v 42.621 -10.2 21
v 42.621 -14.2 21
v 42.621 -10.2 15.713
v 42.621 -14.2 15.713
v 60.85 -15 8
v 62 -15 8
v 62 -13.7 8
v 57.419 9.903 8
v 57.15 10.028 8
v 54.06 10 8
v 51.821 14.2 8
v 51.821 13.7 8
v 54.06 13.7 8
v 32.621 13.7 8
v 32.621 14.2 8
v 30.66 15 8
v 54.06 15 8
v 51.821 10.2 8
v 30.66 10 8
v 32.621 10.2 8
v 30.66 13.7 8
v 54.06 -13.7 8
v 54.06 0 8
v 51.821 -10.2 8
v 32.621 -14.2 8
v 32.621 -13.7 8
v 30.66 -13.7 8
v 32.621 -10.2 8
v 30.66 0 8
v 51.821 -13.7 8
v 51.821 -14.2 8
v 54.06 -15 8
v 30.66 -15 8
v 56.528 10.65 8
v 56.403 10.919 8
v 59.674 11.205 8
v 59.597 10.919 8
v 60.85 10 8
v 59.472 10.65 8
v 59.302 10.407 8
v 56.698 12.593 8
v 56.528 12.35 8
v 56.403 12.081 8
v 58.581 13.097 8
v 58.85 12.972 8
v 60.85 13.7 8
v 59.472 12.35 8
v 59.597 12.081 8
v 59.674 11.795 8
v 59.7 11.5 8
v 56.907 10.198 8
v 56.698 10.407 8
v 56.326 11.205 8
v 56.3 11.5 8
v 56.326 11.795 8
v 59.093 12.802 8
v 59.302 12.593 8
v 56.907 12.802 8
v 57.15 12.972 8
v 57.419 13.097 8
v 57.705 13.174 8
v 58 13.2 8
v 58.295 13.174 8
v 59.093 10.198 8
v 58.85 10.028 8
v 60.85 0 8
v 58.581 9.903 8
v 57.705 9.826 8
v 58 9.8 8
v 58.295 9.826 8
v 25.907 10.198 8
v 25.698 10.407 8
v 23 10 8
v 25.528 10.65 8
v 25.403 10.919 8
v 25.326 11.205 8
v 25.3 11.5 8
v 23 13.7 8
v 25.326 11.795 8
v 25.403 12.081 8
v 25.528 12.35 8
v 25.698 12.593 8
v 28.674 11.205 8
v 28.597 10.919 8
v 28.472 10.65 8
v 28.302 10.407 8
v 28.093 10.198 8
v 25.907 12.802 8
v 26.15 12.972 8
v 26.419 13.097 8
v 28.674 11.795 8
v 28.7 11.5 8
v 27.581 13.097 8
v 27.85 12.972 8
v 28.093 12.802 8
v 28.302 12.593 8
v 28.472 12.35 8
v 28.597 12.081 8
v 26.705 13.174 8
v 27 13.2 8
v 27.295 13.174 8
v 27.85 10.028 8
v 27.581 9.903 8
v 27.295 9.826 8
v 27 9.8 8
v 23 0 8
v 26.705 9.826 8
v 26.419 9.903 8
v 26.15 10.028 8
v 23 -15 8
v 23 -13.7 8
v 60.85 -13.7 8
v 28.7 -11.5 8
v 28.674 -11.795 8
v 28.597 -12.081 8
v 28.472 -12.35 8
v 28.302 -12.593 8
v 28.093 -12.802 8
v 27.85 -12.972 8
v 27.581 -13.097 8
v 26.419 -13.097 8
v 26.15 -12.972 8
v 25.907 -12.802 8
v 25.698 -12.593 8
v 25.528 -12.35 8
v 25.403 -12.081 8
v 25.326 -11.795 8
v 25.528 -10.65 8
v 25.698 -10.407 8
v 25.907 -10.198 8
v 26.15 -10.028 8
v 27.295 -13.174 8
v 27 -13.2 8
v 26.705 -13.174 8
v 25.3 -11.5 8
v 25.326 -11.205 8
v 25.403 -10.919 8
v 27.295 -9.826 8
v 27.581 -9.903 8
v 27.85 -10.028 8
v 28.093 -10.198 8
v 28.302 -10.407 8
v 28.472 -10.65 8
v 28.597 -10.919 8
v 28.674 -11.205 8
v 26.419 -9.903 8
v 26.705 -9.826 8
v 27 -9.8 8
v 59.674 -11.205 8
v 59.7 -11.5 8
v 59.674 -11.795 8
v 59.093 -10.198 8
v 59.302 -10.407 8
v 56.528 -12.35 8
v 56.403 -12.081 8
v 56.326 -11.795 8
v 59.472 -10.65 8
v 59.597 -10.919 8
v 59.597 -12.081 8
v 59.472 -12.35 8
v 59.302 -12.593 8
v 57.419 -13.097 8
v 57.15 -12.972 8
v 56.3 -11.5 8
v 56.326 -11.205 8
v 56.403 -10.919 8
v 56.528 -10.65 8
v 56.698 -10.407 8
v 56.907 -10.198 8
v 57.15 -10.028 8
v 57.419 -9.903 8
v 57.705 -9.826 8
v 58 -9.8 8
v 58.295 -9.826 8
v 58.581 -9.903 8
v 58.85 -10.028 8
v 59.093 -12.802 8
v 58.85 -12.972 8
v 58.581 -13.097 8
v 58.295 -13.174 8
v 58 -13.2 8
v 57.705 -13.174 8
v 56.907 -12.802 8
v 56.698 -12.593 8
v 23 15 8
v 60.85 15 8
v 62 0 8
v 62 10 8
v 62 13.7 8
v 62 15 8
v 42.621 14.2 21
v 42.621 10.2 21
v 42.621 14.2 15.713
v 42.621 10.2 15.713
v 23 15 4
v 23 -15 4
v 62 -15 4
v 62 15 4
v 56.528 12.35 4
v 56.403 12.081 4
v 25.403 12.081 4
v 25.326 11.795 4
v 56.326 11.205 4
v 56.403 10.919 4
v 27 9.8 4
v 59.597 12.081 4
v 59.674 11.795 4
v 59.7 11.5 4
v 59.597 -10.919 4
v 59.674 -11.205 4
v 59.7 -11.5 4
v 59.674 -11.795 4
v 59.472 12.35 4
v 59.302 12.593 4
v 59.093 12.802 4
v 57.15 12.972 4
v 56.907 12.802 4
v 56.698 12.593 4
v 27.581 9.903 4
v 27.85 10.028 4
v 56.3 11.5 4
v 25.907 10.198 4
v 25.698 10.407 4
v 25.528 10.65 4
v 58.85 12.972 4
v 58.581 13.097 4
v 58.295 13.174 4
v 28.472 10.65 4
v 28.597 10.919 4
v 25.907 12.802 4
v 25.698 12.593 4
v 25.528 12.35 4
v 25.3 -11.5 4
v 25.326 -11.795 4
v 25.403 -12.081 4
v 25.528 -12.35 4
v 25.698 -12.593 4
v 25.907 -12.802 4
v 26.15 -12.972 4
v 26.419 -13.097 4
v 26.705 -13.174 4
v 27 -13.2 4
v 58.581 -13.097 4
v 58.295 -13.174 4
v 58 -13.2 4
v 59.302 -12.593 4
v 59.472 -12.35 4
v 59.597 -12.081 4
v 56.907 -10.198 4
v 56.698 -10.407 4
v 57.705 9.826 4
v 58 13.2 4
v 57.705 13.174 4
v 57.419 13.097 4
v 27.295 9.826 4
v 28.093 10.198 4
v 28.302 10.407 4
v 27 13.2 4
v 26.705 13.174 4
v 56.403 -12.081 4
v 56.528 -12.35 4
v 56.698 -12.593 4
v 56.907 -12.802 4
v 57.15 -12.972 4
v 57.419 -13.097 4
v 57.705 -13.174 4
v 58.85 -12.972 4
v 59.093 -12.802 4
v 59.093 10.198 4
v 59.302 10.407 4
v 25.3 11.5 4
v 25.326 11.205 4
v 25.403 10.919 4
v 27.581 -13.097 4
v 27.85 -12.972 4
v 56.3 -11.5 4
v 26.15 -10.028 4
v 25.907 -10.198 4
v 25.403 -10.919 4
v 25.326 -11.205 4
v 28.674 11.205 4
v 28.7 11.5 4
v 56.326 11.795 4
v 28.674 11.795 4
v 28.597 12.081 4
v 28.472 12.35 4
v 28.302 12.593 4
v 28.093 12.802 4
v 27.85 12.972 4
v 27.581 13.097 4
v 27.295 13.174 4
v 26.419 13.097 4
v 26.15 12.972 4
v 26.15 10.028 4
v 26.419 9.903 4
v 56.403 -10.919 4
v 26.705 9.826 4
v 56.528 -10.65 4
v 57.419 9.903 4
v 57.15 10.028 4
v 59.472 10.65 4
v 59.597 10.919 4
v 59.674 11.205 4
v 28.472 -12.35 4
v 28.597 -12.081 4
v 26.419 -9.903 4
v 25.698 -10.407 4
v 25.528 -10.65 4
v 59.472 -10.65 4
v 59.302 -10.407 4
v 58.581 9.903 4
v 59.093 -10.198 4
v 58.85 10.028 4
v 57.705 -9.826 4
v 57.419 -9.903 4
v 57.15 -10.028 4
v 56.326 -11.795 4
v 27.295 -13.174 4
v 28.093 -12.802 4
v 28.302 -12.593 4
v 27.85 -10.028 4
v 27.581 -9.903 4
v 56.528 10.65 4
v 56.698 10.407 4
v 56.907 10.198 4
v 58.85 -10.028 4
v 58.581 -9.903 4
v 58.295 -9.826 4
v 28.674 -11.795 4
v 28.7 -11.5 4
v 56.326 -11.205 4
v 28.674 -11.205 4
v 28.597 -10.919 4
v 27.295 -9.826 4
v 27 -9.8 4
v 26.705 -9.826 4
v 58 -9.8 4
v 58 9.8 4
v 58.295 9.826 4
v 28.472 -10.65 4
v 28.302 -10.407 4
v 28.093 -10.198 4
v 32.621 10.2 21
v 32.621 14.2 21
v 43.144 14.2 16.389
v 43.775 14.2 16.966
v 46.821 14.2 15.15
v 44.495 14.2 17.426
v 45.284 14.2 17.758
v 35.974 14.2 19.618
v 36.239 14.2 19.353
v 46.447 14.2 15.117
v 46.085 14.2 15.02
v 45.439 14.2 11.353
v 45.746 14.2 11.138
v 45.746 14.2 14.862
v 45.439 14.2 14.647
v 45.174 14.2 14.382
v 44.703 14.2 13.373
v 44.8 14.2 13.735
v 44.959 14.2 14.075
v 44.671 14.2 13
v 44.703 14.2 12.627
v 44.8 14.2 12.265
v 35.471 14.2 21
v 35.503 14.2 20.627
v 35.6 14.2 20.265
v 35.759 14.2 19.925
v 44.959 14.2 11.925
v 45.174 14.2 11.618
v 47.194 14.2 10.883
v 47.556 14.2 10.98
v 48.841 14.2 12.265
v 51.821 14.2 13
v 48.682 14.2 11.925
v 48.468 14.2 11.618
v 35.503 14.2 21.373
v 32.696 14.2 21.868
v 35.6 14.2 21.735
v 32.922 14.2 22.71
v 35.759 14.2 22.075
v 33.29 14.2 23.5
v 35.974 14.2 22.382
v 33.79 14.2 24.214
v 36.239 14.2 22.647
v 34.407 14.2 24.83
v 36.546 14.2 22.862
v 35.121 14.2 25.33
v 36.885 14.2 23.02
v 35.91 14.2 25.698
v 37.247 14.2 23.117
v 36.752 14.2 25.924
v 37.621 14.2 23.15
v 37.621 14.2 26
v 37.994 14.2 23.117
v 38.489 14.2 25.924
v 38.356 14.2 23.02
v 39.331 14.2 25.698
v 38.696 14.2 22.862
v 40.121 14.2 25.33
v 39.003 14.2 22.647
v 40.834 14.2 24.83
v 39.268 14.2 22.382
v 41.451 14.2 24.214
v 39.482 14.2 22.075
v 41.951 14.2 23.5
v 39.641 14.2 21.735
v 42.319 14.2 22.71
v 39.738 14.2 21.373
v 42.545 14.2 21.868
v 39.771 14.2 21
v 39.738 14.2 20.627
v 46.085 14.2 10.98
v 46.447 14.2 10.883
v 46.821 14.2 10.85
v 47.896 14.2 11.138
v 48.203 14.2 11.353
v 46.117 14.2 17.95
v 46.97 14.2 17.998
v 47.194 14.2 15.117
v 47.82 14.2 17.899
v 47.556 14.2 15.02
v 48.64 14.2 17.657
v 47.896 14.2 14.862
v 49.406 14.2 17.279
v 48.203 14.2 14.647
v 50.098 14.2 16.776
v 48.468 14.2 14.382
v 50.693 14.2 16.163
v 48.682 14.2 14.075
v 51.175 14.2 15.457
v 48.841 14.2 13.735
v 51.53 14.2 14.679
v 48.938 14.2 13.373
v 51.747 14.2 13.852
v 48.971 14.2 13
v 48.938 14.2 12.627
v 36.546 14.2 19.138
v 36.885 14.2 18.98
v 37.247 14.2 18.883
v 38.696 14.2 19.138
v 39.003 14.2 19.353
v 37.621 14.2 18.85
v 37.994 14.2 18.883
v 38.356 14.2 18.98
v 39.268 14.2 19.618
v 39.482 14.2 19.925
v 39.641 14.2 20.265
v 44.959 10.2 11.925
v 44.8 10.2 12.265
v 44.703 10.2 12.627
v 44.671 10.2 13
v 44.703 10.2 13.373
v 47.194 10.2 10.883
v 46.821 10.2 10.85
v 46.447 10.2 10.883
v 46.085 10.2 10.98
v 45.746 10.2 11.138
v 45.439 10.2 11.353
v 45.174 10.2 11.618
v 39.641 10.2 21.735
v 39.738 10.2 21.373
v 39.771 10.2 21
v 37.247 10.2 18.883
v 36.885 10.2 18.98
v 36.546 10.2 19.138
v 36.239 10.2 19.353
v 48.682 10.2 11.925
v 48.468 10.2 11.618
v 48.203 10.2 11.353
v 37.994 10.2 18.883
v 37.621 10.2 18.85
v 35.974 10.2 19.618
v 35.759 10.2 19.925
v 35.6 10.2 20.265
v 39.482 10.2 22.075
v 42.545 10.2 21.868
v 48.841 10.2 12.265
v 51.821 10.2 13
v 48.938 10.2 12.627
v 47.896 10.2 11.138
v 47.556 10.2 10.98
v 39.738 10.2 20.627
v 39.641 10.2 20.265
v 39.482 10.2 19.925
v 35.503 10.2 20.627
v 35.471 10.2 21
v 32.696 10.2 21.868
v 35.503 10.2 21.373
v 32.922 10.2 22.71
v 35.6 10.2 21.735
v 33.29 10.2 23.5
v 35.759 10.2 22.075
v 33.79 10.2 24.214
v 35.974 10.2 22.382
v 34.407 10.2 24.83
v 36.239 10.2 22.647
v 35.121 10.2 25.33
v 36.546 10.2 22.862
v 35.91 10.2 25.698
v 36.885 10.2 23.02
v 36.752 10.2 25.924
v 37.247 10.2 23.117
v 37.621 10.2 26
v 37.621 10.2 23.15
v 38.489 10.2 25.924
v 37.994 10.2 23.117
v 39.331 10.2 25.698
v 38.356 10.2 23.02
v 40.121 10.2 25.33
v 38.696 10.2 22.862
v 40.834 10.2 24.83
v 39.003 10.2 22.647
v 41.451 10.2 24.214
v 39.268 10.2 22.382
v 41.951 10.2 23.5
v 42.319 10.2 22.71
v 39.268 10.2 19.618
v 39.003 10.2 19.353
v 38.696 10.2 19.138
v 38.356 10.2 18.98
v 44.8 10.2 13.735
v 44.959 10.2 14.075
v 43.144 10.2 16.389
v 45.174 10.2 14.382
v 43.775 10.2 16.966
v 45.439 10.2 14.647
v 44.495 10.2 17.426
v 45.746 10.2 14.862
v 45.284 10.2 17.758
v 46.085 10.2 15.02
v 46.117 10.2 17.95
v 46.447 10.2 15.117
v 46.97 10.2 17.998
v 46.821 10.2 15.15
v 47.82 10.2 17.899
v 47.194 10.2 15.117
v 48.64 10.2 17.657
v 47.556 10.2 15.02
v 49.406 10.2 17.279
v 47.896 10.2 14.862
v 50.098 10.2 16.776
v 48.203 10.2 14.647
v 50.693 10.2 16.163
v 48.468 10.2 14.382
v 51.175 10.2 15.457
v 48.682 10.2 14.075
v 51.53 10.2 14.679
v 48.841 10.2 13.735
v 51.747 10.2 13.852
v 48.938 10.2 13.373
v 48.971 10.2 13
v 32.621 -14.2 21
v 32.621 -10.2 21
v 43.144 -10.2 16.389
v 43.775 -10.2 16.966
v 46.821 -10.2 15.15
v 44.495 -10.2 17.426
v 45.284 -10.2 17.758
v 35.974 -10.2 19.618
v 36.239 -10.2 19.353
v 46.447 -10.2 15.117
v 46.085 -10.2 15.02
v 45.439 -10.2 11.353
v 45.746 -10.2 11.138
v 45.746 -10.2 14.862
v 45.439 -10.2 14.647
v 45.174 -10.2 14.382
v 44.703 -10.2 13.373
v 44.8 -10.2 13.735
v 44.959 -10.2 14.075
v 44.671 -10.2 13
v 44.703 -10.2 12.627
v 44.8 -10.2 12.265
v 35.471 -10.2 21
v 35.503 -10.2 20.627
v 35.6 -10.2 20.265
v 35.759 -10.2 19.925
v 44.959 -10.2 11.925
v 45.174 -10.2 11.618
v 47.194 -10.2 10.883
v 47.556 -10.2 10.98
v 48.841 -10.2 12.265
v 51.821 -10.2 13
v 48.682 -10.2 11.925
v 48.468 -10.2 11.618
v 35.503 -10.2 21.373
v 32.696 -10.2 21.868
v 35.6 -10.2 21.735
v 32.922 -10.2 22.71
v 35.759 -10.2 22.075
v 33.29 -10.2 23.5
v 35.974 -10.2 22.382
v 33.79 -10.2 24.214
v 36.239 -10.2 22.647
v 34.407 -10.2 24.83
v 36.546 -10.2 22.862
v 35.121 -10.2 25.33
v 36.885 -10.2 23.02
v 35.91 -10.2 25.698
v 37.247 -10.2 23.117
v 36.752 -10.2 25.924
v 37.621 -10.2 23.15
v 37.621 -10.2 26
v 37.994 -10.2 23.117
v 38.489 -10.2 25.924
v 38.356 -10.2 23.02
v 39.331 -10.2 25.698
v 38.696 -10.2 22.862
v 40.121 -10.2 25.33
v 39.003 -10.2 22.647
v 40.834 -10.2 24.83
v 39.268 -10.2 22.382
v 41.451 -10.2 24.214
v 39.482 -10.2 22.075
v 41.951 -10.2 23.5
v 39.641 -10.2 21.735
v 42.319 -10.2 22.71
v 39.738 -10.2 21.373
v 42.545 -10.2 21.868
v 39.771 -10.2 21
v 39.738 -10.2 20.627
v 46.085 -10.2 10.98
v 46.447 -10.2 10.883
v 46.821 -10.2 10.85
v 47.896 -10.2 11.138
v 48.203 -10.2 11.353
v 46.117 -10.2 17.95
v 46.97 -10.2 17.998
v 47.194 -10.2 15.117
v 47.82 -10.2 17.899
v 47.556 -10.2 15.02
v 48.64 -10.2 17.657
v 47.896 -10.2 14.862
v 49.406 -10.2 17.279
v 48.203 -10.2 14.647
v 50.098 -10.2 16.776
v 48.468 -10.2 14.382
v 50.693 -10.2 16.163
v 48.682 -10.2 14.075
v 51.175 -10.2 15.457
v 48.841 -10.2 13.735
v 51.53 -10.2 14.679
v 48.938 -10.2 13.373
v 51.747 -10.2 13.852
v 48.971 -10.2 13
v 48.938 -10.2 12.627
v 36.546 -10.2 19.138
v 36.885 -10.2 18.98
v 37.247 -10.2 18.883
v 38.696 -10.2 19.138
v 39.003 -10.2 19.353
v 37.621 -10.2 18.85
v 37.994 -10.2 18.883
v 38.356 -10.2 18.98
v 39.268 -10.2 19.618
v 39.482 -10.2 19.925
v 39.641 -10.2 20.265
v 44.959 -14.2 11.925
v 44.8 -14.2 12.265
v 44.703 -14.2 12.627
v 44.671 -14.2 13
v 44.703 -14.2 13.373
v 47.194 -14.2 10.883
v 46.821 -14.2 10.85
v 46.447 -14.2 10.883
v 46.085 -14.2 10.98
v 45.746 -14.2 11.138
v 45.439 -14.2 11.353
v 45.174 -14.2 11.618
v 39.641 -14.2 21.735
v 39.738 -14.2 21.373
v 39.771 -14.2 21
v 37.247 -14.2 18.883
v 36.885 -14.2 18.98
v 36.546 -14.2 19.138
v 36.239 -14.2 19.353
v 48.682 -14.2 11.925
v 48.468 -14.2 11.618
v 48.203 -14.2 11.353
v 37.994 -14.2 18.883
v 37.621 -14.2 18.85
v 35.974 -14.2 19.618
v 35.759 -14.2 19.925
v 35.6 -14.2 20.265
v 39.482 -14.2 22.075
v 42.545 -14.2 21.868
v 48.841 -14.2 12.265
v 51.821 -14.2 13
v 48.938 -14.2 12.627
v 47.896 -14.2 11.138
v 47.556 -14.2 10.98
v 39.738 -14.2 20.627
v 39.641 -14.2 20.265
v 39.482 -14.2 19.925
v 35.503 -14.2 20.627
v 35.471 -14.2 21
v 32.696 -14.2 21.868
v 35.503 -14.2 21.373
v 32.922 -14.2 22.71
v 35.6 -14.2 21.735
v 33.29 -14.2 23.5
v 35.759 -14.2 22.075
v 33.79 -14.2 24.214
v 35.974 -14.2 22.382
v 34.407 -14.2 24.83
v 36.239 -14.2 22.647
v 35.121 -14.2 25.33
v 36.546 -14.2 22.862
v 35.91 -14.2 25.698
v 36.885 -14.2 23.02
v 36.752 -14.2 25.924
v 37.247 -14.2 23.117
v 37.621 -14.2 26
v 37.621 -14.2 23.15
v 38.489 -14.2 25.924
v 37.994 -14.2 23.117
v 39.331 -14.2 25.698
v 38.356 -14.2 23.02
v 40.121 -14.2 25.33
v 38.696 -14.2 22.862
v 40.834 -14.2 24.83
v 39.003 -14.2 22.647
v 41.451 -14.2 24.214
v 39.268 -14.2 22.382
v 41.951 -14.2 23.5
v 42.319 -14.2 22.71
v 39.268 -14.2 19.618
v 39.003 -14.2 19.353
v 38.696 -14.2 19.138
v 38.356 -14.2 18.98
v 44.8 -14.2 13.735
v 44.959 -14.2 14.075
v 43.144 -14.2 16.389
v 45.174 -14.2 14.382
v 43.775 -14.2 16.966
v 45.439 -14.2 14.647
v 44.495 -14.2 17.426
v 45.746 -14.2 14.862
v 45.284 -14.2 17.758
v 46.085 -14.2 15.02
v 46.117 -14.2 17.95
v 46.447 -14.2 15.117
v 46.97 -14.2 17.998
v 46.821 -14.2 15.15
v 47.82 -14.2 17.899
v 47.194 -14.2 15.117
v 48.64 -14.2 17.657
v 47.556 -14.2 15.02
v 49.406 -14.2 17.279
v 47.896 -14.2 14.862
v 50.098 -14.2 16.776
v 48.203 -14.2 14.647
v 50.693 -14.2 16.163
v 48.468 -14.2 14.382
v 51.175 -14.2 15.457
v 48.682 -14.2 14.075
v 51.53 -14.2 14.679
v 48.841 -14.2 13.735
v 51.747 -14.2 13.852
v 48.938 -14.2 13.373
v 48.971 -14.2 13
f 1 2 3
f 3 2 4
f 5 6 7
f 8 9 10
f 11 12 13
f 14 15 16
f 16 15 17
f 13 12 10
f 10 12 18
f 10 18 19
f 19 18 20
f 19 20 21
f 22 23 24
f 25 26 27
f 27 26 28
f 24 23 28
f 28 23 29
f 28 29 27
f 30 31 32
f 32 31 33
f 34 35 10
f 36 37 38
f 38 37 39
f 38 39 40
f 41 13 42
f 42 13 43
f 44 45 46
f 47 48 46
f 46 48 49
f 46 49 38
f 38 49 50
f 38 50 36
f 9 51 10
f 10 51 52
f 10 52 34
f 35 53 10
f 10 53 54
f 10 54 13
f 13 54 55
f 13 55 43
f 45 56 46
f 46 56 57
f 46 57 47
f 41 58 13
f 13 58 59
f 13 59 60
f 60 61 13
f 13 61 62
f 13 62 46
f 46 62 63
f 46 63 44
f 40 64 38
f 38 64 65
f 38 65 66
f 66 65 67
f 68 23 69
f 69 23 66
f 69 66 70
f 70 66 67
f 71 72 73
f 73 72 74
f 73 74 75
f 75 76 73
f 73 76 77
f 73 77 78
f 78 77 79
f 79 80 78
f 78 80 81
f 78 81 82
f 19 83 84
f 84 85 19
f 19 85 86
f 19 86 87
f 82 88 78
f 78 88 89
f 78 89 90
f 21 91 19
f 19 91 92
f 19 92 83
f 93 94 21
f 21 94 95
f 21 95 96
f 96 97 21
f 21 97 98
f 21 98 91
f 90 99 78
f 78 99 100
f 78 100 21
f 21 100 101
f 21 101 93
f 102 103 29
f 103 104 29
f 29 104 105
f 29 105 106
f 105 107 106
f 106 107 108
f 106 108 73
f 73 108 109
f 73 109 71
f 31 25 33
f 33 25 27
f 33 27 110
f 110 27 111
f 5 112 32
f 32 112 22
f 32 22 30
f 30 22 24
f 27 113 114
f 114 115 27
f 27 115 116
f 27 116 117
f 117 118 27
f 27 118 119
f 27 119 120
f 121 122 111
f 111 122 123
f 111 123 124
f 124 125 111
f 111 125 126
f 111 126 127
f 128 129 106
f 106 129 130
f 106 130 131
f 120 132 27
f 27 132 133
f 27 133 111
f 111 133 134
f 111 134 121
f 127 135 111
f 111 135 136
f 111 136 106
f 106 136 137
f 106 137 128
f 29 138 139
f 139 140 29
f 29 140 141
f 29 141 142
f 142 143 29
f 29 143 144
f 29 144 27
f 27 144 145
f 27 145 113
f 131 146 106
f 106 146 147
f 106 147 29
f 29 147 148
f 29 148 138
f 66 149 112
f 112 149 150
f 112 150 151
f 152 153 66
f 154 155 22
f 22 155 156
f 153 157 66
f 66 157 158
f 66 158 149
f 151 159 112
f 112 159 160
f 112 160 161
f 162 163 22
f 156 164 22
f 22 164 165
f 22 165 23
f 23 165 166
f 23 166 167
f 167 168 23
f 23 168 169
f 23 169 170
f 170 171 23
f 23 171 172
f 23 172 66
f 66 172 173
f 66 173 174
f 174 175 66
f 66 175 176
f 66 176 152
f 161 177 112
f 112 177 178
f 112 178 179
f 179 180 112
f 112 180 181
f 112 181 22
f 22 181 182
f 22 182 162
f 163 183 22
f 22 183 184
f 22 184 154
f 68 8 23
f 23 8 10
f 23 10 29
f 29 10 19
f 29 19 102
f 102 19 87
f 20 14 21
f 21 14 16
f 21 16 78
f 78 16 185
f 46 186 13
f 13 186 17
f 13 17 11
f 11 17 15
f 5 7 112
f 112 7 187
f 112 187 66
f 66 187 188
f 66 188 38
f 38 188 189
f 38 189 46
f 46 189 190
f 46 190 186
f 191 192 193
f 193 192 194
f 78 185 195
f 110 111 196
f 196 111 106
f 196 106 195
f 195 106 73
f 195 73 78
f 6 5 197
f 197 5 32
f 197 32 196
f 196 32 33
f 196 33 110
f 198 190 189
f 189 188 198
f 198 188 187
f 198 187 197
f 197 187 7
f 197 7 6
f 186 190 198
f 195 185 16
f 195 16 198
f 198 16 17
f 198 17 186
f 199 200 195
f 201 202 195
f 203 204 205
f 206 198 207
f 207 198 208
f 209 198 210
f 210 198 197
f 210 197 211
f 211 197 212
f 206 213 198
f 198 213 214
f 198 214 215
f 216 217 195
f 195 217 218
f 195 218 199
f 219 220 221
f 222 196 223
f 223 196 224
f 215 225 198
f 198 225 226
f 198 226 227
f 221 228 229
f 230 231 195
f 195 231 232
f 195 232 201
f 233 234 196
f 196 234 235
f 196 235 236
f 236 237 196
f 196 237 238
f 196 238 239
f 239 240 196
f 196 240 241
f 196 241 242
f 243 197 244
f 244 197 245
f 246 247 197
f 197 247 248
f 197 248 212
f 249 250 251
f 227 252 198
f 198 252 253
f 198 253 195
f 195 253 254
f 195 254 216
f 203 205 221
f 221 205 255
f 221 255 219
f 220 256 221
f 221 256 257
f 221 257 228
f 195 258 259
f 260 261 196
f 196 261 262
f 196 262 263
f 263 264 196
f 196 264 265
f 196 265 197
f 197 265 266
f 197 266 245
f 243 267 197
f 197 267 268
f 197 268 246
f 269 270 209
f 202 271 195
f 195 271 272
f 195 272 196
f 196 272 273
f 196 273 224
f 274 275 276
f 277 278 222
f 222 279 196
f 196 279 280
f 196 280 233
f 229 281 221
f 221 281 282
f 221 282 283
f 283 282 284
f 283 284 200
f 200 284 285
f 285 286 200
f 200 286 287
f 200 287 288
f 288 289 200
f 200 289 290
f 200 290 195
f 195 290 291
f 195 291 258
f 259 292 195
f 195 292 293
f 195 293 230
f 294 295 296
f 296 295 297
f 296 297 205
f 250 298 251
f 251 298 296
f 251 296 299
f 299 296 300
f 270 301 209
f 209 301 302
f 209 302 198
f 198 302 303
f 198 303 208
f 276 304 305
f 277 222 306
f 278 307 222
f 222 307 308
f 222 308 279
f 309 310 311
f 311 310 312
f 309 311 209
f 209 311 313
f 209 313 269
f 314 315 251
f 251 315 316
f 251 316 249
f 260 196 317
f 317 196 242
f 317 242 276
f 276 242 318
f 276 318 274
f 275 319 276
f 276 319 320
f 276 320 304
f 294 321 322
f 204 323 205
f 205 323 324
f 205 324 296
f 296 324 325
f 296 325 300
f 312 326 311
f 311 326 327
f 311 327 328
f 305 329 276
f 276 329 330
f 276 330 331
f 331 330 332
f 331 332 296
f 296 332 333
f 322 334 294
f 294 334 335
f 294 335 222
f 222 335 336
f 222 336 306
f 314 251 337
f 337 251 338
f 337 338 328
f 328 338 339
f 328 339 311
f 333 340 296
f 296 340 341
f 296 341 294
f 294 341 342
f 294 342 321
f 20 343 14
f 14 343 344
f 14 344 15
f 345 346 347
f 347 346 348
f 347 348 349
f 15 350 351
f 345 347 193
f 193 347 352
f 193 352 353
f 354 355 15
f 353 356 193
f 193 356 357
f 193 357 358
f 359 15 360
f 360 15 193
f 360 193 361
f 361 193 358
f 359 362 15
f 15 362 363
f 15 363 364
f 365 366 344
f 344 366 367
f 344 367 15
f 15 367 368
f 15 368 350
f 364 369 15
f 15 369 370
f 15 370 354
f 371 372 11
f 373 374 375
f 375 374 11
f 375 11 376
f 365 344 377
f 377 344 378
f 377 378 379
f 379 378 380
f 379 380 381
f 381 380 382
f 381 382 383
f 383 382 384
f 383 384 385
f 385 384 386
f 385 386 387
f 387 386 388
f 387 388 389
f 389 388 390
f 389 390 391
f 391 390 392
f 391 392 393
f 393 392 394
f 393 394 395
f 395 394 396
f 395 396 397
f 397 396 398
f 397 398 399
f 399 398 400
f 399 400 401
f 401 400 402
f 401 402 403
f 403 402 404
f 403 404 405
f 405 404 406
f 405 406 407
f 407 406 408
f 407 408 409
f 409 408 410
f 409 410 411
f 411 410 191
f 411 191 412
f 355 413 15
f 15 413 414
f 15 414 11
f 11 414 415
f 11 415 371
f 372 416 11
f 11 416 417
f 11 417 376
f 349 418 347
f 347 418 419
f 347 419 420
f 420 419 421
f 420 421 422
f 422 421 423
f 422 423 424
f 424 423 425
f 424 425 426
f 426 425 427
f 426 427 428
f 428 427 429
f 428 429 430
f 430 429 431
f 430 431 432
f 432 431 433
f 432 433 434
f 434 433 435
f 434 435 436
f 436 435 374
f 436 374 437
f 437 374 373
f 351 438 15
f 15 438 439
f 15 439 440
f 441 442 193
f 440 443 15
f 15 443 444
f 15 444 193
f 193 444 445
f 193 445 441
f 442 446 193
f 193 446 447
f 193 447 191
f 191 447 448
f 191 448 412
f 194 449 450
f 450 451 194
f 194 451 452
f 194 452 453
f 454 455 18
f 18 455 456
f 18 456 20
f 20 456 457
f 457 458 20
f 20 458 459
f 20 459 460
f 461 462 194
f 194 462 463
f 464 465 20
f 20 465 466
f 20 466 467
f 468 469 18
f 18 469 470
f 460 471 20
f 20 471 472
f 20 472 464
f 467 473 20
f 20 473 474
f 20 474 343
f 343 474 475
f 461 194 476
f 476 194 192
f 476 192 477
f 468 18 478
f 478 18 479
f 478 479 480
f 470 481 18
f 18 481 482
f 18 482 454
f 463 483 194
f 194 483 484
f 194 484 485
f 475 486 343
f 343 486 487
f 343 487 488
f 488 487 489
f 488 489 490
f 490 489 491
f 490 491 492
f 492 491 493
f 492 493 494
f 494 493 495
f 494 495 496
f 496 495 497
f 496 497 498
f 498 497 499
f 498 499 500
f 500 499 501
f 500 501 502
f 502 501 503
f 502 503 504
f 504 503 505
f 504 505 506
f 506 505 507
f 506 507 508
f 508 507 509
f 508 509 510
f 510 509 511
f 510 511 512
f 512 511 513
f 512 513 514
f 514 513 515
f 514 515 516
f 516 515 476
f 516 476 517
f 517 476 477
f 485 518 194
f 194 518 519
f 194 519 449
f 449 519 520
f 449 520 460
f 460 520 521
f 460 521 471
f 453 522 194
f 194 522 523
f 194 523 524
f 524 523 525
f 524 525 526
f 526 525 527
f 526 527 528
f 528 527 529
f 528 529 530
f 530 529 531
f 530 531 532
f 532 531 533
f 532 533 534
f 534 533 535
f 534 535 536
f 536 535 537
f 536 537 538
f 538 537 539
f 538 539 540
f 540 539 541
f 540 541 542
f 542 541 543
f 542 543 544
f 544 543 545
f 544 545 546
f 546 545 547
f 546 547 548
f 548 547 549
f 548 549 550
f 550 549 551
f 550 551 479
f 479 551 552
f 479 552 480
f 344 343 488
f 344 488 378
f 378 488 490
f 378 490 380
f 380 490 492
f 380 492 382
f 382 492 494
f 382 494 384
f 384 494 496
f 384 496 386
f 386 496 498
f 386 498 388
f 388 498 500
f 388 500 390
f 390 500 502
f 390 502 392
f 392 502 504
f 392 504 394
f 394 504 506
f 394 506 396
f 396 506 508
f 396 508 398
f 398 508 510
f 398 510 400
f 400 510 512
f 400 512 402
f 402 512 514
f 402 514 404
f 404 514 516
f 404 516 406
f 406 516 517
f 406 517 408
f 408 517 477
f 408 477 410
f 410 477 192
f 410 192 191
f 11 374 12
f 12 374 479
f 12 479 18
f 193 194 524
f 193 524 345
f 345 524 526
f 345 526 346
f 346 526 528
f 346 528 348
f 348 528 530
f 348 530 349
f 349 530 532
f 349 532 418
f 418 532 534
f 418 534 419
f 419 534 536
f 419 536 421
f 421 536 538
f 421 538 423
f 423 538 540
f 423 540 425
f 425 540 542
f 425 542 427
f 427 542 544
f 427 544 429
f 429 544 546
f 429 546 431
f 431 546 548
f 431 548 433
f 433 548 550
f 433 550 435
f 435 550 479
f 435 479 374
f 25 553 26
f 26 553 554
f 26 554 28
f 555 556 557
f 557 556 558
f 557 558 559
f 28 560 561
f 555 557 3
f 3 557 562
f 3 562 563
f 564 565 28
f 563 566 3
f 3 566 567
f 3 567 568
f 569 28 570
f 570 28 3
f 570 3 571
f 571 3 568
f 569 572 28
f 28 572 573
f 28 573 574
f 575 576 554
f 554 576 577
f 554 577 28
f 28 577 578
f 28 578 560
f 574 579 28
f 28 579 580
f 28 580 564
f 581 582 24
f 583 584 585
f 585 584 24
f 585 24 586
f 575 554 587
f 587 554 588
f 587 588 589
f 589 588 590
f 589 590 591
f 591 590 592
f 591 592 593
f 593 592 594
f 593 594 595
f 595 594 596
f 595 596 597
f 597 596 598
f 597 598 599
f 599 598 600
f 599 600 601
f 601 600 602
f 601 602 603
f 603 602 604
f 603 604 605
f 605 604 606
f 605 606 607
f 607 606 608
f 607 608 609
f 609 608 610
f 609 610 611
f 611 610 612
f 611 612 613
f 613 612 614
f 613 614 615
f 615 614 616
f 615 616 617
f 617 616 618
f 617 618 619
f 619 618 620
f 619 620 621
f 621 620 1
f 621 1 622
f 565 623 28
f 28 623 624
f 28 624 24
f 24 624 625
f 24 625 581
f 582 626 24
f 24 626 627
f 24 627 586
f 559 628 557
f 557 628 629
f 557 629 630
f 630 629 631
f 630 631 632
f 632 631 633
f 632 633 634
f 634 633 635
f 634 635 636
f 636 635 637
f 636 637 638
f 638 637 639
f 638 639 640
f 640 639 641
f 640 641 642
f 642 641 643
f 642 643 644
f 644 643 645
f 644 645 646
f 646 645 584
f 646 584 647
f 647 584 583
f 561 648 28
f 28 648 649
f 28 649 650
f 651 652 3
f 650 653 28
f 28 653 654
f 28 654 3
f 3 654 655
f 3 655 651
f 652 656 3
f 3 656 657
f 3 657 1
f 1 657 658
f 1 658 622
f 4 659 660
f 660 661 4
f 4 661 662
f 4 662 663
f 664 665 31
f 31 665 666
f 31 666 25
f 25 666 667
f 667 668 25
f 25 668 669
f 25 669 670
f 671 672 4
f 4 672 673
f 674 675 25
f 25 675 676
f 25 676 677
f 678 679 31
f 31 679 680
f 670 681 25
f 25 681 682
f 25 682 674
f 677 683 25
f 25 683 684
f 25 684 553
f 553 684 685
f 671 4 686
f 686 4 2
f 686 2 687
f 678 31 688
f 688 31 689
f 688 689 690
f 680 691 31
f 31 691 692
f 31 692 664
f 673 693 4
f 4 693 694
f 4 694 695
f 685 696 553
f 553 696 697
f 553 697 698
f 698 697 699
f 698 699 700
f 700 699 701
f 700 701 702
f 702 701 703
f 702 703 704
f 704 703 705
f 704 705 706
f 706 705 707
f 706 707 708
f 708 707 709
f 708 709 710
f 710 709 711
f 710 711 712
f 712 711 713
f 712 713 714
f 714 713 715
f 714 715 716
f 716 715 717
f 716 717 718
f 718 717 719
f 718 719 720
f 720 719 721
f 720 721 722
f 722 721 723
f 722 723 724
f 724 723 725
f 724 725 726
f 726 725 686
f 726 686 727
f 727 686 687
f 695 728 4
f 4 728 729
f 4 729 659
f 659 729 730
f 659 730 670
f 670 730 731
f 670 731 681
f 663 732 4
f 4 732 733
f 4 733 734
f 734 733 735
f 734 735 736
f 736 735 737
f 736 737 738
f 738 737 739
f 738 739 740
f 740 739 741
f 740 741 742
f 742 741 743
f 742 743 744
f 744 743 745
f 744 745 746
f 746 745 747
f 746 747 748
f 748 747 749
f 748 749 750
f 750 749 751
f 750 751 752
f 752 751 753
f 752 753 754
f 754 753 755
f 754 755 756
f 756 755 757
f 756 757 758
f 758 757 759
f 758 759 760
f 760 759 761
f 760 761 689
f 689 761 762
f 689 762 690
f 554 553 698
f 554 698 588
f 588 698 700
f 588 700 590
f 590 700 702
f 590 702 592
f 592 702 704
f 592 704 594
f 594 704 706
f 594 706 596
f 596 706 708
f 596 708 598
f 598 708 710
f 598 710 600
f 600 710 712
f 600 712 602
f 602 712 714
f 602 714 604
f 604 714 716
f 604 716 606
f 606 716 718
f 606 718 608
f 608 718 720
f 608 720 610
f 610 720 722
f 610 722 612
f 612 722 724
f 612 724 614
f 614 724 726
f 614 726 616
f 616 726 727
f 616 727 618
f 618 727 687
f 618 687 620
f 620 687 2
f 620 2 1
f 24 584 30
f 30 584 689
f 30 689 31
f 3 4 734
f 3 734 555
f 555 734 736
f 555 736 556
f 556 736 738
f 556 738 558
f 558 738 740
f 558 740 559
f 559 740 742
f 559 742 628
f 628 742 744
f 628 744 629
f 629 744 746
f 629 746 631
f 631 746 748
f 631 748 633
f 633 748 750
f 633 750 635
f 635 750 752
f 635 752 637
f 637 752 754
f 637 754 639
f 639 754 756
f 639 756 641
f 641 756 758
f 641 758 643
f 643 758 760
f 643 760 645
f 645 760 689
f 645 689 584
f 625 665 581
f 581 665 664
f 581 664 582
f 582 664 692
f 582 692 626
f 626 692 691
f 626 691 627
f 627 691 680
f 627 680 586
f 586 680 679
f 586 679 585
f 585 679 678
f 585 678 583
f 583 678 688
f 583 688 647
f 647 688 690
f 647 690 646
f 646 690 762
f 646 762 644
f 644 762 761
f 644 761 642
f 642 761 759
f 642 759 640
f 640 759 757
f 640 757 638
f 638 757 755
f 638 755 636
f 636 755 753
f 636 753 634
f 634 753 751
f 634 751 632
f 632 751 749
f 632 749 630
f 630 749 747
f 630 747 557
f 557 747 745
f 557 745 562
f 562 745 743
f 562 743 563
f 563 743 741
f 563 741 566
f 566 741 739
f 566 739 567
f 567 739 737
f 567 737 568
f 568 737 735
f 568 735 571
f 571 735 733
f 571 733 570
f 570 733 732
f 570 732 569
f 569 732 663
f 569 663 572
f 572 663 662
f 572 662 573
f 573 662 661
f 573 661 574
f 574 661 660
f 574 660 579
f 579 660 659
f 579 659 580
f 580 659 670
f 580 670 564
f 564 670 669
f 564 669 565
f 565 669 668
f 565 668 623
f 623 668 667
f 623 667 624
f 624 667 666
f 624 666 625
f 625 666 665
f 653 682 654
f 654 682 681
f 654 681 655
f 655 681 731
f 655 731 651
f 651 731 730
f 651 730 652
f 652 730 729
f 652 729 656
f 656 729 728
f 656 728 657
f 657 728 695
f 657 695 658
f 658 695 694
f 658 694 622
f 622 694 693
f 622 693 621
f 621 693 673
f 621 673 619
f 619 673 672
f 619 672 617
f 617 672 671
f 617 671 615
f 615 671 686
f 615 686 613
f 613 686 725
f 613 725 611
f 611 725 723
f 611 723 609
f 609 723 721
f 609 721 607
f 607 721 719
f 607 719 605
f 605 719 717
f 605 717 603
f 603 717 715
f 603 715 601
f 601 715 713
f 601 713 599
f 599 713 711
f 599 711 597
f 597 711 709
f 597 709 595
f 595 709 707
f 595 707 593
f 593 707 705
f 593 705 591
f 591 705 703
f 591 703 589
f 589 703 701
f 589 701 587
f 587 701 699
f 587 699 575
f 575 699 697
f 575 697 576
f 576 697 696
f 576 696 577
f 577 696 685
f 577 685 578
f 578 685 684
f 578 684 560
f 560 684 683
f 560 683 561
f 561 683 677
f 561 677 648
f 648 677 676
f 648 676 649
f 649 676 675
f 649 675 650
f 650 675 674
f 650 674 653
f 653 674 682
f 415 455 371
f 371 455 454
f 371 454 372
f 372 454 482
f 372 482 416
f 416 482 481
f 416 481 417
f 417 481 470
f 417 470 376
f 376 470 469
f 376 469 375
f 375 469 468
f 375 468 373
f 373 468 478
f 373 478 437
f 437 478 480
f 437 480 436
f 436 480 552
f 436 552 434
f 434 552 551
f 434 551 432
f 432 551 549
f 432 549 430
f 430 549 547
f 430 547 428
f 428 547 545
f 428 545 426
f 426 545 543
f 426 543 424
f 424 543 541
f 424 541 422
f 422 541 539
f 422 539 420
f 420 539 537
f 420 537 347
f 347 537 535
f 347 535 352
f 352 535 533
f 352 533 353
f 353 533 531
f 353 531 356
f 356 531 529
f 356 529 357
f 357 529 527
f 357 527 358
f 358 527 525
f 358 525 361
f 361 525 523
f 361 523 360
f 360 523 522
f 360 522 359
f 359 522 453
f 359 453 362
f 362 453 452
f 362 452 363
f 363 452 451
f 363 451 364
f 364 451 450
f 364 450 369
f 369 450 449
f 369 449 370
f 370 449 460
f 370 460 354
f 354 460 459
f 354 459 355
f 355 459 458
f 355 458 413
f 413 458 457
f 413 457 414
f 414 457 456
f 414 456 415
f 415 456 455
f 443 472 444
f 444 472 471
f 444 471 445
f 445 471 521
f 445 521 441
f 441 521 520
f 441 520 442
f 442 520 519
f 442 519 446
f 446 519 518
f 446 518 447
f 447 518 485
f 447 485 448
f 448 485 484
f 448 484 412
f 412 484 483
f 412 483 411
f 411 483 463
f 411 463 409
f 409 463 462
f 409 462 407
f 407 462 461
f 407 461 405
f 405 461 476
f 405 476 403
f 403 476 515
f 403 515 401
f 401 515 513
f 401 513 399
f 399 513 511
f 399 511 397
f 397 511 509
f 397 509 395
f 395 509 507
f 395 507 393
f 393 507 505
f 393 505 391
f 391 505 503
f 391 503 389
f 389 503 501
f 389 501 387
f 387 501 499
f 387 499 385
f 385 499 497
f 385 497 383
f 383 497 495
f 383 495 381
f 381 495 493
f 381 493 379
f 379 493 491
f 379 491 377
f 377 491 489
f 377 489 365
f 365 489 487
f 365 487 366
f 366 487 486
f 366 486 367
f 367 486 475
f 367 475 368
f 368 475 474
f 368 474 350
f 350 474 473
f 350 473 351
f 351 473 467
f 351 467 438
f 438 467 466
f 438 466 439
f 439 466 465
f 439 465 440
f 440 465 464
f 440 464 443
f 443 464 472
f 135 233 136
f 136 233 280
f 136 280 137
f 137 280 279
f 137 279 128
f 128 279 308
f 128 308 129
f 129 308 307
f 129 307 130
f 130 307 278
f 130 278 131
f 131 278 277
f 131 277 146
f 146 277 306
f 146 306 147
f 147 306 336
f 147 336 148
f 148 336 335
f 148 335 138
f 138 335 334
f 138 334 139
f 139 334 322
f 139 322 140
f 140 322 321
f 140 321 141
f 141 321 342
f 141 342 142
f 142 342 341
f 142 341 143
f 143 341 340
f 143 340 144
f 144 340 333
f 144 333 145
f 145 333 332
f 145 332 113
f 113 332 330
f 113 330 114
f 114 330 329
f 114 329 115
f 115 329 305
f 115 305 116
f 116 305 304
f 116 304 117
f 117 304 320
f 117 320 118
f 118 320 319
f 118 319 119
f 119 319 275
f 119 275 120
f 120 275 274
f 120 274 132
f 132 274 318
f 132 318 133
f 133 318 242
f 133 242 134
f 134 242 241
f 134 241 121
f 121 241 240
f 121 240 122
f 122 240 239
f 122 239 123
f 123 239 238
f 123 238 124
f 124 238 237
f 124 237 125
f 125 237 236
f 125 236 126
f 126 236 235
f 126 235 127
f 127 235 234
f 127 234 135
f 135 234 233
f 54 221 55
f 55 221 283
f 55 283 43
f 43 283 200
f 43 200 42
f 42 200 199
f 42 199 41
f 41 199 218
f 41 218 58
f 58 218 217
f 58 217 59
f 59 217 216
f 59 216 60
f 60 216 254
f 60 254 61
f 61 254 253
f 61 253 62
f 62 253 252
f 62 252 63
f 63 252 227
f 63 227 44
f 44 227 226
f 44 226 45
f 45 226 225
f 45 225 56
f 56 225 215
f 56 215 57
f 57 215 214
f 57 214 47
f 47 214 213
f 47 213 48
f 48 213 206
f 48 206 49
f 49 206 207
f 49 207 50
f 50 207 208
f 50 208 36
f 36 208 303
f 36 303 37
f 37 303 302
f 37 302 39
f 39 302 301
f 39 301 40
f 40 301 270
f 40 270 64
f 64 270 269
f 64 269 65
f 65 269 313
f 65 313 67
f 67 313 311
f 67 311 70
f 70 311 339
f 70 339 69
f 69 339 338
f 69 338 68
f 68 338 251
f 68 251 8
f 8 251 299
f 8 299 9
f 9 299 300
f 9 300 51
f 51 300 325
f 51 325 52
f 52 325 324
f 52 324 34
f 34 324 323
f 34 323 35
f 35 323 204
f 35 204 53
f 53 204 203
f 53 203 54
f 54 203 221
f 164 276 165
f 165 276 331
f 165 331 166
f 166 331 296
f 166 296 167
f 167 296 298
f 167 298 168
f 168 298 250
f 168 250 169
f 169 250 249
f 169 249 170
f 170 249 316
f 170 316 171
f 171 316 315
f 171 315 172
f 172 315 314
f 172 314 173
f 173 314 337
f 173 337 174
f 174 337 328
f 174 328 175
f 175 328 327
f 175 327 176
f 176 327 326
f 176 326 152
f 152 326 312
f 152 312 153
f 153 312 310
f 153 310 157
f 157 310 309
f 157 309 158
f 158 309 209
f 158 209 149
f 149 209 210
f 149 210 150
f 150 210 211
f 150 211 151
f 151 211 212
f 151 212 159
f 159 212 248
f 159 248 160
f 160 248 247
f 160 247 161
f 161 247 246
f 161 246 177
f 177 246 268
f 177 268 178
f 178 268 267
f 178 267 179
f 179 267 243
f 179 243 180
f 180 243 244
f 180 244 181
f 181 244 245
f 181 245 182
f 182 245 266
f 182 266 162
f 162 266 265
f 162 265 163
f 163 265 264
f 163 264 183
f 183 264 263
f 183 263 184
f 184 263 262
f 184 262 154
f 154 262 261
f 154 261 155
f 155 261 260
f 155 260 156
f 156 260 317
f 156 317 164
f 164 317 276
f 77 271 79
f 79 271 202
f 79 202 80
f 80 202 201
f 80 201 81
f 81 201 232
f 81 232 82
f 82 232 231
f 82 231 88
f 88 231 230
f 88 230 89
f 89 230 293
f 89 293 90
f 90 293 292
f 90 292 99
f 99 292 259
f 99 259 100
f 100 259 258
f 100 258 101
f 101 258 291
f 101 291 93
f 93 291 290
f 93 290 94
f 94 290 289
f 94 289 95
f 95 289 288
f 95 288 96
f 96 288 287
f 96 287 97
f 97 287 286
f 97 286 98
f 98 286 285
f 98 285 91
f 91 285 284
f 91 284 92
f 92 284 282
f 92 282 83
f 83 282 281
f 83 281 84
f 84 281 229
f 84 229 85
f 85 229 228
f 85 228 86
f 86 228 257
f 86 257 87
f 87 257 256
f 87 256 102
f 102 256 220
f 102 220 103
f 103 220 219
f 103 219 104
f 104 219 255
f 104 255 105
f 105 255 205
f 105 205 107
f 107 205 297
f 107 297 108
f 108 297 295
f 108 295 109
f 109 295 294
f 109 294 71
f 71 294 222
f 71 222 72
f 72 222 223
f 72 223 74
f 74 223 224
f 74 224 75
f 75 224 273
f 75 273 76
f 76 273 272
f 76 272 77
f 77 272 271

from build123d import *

# Parameters (mm, degrees)
REMOVABLE_ADAPTER_BASE_START           = 4
REMOVABLE_ADAPTER_BASE_PROFILE_W       = 39
REMOVABLE_ADAPTER_BASE_PROFILE_H       = 30
REMOVABLE_ADAPTER_BASE_DEPTH           = 4
LEFT_PIN0_SUPPORT_START                = 10.2
LEFT_PIN0_SUPPORT_PROFILE_W            = 10
LEFT_PIN0_SUPPORT_PROFILE_H            = 13
LEFT_PIN0_SUPPORT_DEPTH                = 4
LEFT_PIN0_ROUNDED_LUG_START            = 10.2
LEFT_PIN0_ROUNDED_LUG_PROFILE_R        = 5
LEFT_PIN0_ROUNDED_LUG_DEPTH            = 4
LEFT_PIN1_SUPPORT_START                = 10.2
LEFT_PIN1_SUPPORT_PROFILE_W            = 10
LEFT_PIN1_SUPPORT_PROFILE_H            = 5
LEFT_PIN1_SUPPORT_DEPTH                = 4
LEFT_PIN1_ROUNDED_LUG_START            = 10.2
LEFT_PIN1_ROUNDED_LUG_PROFILE_R        = 5
LEFT_PIN1_ROUNDED_LUG_DEPTH            = 4
RIGHT_PIN0_SUPPORT_START               = -14.2
RIGHT_PIN0_SUPPORT_PROFILE_W           = 10
RIGHT_PIN0_SUPPORT_PROFILE_H           = 13
RIGHT_PIN0_SUPPORT_DEPTH               = 4
RIGHT_PIN0_ROUNDED_LUG_START           = -14.2
RIGHT_PIN0_ROUNDED_LUG_PROFILE_R       = 5
RIGHT_PIN0_ROUNDED_LUG_DEPTH           = 4
RIGHT_PIN1_SUPPORT_START               = -14.2
RIGHT_PIN1_SUPPORT_PROFILE_W           = 10
RIGHT_PIN1_SUPPORT_PROFILE_H           = 5
RIGHT_PIN1_SUPPORT_DEPTH               = 4
RIGHT_PIN1_ROUNDED_LUG_START           = -14.2
RIGHT_PIN1_ROUNDED_LUG_PROFILE_R       = 5
RIGHT_PIN1_ROUNDED_LUG_DEPTH           = 4
BOTH_M4_GRIPPER_PIN_AXES_START         = -20
BOTH_M4_GRIPPER_PIN_AXES_PROFILE_R     = 2.15
BOTH_M4_GRIPPER_PIN_AXES_DEPTH         = 89.883960397
FOUR_M3_REMOVABLE_DECK_BOLTS_START     = -50
FOUR_M3_REMOVABLE_DECK_BOLTS_PROFILE_R = 1.7
FOUR_M3_REMOVABLE_DECK_BOLTS_DEPTH     = 119.883960397


with BuildPart() as part:
    # Removable_adapter_base_profile → Removable_adapter_base (new body)
    with BuildSketch(Plane.XY.offset(REMOVABLE_ADAPTER_BASE_START)):
        with Locations((42.5, 0)):
            Rectangle(REMOVABLE_ADAPTER_BASE_PROFILE_W, REMOVABLE_ADAPTER_BASE_PROFILE_H)
    extrude(amount=REMOVABLE_ADAPTER_BASE_DEPTH)

    # Left_pin0_support_profile → Left_pin0_support (add)
    with BuildSketch(Plane(origin=(0, 0, 0), x_dir=(1, 0, 0), z_dir=(0, 1, 0)).offset(LEFT_PIN0_SUPPORT_START)):
        with Locations((37.620525892, -14.5)):
            Rectangle(LEFT_PIN0_SUPPORT_PROFILE_W, LEFT_PIN0_SUPPORT_PROFILE_H)
    extrude(amount=LEFT_PIN0_SUPPORT_DEPTH)

    # Left_pin0_rounded_lug_profile → Left_pin0_rounded_lug (add)
    with BuildSketch(Plane(origin=(0, 0, 0), x_dir=(1, 0, 0), z_dir=(0, 1, 0)).offset(LEFT_PIN0_ROUNDED_LUG_START)):
        with Locations((37.620525892, -21)):
            Circle(LEFT_PIN0_ROUNDED_LUG_PROFILE_R)
    extrude(amount=LEFT_PIN0_ROUNDED_LUG_DEPTH)

    # Left_pin1_support_profile → Left_pin1_support (add)
    with BuildSketch(Plane(origin=(0, 0, 0), x_dir=(1, 0, 0), z_dir=(0, 1, 0)).offset(LEFT_PIN1_SUPPORT_START)):
        with Locations((46.820525892, -10.5)):
            Rectangle(LEFT_PIN1_SUPPORT_PROFILE_W, LEFT_PIN1_SUPPORT_PROFILE_H)
    extrude(amount=LEFT_PIN1_SUPPORT_DEPTH)

    # Left_pin1_rounded_lug_profile → Left_pin1_rounded_lug (add)
    with BuildSketch(Plane(origin=(0, 0, 0), x_dir=(1, 0, 0), z_dir=(0, 1, 0)).offset(LEFT_PIN1_ROUNDED_LUG_START)):
        with Locations((46.820525892, -13)):
            Circle(LEFT_PIN1_ROUNDED_LUG_PROFILE_R)
    extrude(amount=LEFT_PIN1_ROUNDED_LUG_DEPTH)

    # Right_pin0_support_profile → Right_pin0_support (add)
    with BuildSketch(Plane(origin=(0, 0, 0), x_dir=(1, 0, 0), z_dir=(0, 1, 0)).offset(RIGHT_PIN0_SUPPORT_START)):
        with Locations((37.620525892, -14.5)):
            Rectangle(RIGHT_PIN0_SUPPORT_PROFILE_W, RIGHT_PIN0_SUPPORT_PROFILE_H)
    extrude(amount=RIGHT_PIN0_SUPPORT_DEPTH)

    # Right_pin0_rounded_lug_profile → Right_pin0_rounded_lug (add)
    with BuildSketch(Plane(origin=(0, 0, 0), x_dir=(1, 0, 0), z_dir=(0, 1, 0)).offset(RIGHT_PIN0_ROUNDED_LUG_START)):
        with Locations((37.620525892, -21)):
            Circle(RIGHT_PIN0_ROUNDED_LUG_PROFILE_R)
    extrude(amount=RIGHT_PIN0_ROUNDED_LUG_DEPTH)

    # Right_pin1_support_profile → Right_pin1_support (add)
    with BuildSketch(Plane(origin=(0, 0, 0), x_dir=(1, 0, 0), z_dir=(0, 1, 0)).offset(RIGHT_PIN1_SUPPORT_START)):
        with Locations((46.820525892, -10.5)):
            Rectangle(RIGHT_PIN1_SUPPORT_PROFILE_W, RIGHT_PIN1_SUPPORT_PROFILE_H)
    extrude(amount=RIGHT_PIN1_SUPPORT_DEPTH)

    # Right_pin1_rounded_lug_profile → Right_pin1_rounded_lug (add)
    with BuildSketch(Plane(origin=(0, 0, 0), x_dir=(1, 0, 0), z_dir=(0, 1, 0)).offset(RIGHT_PIN1_ROUNDED_LUG_START)):
        with Locations((46.820525892, -13)):
            Circle(RIGHT_PIN1_ROUNDED_LUG_PROFILE_R)
    extrude(amount=RIGHT_PIN1_ROUNDED_LUG_DEPTH)

    # Both_M4_gripper_pin_axes_profile → Both_M4_gripper_pin_axes (cut, through all)
    with BuildSketch(Plane(origin=(0, 0, 0), x_dir=(1, 0, 0), z_dir=(0, 1, 0)).offset(BOTH_M4_GRIPPER_PIN_AXES_START)):
        with Locations(Location((37.620525892, -21, 0), (0, 0, 90))):
            Circle(BOTH_M4_GRIPPER_PIN_AXES_PROFILE_R)
        with Locations(Location((46.820525892, -13, 0), (0, 0, 90))):
            Circle(BOTH_M4_GRIPPER_PIN_AXES_PROFILE_R)
    extrude(amount=BOTH_M4_GRIPPER_PIN_AXES_DEPTH, mode=Mode.SUBTRACT)

    # Four_M3_removable_deck_bolts_profile → Four_M3_removable_deck_bolts (cut, through all)
    with BuildSketch(Plane.XY.offset(FOUR_M3_REMOVABLE_DECK_BOLTS_START)):
        with Locations(Location((27, -11.5, 0), (0, 0, 180))):
            Circle(FOUR_M3_REMOVABLE_DECK_BOLTS_PROFILE_R)
        with Locations(Location((27, 11.5, 0), (0, 0, 180))):
            Circle(FOUR_M3_REMOVABLE_DECK_BOLTS_PROFILE_R)
        with Locations(Location((58, -11.5, 0), (0, 0, 180))):
            Circle(FOUR_M3_REMOVABLE_DECK_BOLTS_PROFILE_R)
        with Locations(Location((58, 11.5, 0), (0, 0, 180))):
            Circle(FOUR_M3_REMOVABLE_DECK_BOLTS_PROFILE_R)
    extrude(amount=FOUR_M3_REMOVABLE_DECK_BOLTS_DEPTH, mode=Mode.SUBTRACT)


solid = part.part
